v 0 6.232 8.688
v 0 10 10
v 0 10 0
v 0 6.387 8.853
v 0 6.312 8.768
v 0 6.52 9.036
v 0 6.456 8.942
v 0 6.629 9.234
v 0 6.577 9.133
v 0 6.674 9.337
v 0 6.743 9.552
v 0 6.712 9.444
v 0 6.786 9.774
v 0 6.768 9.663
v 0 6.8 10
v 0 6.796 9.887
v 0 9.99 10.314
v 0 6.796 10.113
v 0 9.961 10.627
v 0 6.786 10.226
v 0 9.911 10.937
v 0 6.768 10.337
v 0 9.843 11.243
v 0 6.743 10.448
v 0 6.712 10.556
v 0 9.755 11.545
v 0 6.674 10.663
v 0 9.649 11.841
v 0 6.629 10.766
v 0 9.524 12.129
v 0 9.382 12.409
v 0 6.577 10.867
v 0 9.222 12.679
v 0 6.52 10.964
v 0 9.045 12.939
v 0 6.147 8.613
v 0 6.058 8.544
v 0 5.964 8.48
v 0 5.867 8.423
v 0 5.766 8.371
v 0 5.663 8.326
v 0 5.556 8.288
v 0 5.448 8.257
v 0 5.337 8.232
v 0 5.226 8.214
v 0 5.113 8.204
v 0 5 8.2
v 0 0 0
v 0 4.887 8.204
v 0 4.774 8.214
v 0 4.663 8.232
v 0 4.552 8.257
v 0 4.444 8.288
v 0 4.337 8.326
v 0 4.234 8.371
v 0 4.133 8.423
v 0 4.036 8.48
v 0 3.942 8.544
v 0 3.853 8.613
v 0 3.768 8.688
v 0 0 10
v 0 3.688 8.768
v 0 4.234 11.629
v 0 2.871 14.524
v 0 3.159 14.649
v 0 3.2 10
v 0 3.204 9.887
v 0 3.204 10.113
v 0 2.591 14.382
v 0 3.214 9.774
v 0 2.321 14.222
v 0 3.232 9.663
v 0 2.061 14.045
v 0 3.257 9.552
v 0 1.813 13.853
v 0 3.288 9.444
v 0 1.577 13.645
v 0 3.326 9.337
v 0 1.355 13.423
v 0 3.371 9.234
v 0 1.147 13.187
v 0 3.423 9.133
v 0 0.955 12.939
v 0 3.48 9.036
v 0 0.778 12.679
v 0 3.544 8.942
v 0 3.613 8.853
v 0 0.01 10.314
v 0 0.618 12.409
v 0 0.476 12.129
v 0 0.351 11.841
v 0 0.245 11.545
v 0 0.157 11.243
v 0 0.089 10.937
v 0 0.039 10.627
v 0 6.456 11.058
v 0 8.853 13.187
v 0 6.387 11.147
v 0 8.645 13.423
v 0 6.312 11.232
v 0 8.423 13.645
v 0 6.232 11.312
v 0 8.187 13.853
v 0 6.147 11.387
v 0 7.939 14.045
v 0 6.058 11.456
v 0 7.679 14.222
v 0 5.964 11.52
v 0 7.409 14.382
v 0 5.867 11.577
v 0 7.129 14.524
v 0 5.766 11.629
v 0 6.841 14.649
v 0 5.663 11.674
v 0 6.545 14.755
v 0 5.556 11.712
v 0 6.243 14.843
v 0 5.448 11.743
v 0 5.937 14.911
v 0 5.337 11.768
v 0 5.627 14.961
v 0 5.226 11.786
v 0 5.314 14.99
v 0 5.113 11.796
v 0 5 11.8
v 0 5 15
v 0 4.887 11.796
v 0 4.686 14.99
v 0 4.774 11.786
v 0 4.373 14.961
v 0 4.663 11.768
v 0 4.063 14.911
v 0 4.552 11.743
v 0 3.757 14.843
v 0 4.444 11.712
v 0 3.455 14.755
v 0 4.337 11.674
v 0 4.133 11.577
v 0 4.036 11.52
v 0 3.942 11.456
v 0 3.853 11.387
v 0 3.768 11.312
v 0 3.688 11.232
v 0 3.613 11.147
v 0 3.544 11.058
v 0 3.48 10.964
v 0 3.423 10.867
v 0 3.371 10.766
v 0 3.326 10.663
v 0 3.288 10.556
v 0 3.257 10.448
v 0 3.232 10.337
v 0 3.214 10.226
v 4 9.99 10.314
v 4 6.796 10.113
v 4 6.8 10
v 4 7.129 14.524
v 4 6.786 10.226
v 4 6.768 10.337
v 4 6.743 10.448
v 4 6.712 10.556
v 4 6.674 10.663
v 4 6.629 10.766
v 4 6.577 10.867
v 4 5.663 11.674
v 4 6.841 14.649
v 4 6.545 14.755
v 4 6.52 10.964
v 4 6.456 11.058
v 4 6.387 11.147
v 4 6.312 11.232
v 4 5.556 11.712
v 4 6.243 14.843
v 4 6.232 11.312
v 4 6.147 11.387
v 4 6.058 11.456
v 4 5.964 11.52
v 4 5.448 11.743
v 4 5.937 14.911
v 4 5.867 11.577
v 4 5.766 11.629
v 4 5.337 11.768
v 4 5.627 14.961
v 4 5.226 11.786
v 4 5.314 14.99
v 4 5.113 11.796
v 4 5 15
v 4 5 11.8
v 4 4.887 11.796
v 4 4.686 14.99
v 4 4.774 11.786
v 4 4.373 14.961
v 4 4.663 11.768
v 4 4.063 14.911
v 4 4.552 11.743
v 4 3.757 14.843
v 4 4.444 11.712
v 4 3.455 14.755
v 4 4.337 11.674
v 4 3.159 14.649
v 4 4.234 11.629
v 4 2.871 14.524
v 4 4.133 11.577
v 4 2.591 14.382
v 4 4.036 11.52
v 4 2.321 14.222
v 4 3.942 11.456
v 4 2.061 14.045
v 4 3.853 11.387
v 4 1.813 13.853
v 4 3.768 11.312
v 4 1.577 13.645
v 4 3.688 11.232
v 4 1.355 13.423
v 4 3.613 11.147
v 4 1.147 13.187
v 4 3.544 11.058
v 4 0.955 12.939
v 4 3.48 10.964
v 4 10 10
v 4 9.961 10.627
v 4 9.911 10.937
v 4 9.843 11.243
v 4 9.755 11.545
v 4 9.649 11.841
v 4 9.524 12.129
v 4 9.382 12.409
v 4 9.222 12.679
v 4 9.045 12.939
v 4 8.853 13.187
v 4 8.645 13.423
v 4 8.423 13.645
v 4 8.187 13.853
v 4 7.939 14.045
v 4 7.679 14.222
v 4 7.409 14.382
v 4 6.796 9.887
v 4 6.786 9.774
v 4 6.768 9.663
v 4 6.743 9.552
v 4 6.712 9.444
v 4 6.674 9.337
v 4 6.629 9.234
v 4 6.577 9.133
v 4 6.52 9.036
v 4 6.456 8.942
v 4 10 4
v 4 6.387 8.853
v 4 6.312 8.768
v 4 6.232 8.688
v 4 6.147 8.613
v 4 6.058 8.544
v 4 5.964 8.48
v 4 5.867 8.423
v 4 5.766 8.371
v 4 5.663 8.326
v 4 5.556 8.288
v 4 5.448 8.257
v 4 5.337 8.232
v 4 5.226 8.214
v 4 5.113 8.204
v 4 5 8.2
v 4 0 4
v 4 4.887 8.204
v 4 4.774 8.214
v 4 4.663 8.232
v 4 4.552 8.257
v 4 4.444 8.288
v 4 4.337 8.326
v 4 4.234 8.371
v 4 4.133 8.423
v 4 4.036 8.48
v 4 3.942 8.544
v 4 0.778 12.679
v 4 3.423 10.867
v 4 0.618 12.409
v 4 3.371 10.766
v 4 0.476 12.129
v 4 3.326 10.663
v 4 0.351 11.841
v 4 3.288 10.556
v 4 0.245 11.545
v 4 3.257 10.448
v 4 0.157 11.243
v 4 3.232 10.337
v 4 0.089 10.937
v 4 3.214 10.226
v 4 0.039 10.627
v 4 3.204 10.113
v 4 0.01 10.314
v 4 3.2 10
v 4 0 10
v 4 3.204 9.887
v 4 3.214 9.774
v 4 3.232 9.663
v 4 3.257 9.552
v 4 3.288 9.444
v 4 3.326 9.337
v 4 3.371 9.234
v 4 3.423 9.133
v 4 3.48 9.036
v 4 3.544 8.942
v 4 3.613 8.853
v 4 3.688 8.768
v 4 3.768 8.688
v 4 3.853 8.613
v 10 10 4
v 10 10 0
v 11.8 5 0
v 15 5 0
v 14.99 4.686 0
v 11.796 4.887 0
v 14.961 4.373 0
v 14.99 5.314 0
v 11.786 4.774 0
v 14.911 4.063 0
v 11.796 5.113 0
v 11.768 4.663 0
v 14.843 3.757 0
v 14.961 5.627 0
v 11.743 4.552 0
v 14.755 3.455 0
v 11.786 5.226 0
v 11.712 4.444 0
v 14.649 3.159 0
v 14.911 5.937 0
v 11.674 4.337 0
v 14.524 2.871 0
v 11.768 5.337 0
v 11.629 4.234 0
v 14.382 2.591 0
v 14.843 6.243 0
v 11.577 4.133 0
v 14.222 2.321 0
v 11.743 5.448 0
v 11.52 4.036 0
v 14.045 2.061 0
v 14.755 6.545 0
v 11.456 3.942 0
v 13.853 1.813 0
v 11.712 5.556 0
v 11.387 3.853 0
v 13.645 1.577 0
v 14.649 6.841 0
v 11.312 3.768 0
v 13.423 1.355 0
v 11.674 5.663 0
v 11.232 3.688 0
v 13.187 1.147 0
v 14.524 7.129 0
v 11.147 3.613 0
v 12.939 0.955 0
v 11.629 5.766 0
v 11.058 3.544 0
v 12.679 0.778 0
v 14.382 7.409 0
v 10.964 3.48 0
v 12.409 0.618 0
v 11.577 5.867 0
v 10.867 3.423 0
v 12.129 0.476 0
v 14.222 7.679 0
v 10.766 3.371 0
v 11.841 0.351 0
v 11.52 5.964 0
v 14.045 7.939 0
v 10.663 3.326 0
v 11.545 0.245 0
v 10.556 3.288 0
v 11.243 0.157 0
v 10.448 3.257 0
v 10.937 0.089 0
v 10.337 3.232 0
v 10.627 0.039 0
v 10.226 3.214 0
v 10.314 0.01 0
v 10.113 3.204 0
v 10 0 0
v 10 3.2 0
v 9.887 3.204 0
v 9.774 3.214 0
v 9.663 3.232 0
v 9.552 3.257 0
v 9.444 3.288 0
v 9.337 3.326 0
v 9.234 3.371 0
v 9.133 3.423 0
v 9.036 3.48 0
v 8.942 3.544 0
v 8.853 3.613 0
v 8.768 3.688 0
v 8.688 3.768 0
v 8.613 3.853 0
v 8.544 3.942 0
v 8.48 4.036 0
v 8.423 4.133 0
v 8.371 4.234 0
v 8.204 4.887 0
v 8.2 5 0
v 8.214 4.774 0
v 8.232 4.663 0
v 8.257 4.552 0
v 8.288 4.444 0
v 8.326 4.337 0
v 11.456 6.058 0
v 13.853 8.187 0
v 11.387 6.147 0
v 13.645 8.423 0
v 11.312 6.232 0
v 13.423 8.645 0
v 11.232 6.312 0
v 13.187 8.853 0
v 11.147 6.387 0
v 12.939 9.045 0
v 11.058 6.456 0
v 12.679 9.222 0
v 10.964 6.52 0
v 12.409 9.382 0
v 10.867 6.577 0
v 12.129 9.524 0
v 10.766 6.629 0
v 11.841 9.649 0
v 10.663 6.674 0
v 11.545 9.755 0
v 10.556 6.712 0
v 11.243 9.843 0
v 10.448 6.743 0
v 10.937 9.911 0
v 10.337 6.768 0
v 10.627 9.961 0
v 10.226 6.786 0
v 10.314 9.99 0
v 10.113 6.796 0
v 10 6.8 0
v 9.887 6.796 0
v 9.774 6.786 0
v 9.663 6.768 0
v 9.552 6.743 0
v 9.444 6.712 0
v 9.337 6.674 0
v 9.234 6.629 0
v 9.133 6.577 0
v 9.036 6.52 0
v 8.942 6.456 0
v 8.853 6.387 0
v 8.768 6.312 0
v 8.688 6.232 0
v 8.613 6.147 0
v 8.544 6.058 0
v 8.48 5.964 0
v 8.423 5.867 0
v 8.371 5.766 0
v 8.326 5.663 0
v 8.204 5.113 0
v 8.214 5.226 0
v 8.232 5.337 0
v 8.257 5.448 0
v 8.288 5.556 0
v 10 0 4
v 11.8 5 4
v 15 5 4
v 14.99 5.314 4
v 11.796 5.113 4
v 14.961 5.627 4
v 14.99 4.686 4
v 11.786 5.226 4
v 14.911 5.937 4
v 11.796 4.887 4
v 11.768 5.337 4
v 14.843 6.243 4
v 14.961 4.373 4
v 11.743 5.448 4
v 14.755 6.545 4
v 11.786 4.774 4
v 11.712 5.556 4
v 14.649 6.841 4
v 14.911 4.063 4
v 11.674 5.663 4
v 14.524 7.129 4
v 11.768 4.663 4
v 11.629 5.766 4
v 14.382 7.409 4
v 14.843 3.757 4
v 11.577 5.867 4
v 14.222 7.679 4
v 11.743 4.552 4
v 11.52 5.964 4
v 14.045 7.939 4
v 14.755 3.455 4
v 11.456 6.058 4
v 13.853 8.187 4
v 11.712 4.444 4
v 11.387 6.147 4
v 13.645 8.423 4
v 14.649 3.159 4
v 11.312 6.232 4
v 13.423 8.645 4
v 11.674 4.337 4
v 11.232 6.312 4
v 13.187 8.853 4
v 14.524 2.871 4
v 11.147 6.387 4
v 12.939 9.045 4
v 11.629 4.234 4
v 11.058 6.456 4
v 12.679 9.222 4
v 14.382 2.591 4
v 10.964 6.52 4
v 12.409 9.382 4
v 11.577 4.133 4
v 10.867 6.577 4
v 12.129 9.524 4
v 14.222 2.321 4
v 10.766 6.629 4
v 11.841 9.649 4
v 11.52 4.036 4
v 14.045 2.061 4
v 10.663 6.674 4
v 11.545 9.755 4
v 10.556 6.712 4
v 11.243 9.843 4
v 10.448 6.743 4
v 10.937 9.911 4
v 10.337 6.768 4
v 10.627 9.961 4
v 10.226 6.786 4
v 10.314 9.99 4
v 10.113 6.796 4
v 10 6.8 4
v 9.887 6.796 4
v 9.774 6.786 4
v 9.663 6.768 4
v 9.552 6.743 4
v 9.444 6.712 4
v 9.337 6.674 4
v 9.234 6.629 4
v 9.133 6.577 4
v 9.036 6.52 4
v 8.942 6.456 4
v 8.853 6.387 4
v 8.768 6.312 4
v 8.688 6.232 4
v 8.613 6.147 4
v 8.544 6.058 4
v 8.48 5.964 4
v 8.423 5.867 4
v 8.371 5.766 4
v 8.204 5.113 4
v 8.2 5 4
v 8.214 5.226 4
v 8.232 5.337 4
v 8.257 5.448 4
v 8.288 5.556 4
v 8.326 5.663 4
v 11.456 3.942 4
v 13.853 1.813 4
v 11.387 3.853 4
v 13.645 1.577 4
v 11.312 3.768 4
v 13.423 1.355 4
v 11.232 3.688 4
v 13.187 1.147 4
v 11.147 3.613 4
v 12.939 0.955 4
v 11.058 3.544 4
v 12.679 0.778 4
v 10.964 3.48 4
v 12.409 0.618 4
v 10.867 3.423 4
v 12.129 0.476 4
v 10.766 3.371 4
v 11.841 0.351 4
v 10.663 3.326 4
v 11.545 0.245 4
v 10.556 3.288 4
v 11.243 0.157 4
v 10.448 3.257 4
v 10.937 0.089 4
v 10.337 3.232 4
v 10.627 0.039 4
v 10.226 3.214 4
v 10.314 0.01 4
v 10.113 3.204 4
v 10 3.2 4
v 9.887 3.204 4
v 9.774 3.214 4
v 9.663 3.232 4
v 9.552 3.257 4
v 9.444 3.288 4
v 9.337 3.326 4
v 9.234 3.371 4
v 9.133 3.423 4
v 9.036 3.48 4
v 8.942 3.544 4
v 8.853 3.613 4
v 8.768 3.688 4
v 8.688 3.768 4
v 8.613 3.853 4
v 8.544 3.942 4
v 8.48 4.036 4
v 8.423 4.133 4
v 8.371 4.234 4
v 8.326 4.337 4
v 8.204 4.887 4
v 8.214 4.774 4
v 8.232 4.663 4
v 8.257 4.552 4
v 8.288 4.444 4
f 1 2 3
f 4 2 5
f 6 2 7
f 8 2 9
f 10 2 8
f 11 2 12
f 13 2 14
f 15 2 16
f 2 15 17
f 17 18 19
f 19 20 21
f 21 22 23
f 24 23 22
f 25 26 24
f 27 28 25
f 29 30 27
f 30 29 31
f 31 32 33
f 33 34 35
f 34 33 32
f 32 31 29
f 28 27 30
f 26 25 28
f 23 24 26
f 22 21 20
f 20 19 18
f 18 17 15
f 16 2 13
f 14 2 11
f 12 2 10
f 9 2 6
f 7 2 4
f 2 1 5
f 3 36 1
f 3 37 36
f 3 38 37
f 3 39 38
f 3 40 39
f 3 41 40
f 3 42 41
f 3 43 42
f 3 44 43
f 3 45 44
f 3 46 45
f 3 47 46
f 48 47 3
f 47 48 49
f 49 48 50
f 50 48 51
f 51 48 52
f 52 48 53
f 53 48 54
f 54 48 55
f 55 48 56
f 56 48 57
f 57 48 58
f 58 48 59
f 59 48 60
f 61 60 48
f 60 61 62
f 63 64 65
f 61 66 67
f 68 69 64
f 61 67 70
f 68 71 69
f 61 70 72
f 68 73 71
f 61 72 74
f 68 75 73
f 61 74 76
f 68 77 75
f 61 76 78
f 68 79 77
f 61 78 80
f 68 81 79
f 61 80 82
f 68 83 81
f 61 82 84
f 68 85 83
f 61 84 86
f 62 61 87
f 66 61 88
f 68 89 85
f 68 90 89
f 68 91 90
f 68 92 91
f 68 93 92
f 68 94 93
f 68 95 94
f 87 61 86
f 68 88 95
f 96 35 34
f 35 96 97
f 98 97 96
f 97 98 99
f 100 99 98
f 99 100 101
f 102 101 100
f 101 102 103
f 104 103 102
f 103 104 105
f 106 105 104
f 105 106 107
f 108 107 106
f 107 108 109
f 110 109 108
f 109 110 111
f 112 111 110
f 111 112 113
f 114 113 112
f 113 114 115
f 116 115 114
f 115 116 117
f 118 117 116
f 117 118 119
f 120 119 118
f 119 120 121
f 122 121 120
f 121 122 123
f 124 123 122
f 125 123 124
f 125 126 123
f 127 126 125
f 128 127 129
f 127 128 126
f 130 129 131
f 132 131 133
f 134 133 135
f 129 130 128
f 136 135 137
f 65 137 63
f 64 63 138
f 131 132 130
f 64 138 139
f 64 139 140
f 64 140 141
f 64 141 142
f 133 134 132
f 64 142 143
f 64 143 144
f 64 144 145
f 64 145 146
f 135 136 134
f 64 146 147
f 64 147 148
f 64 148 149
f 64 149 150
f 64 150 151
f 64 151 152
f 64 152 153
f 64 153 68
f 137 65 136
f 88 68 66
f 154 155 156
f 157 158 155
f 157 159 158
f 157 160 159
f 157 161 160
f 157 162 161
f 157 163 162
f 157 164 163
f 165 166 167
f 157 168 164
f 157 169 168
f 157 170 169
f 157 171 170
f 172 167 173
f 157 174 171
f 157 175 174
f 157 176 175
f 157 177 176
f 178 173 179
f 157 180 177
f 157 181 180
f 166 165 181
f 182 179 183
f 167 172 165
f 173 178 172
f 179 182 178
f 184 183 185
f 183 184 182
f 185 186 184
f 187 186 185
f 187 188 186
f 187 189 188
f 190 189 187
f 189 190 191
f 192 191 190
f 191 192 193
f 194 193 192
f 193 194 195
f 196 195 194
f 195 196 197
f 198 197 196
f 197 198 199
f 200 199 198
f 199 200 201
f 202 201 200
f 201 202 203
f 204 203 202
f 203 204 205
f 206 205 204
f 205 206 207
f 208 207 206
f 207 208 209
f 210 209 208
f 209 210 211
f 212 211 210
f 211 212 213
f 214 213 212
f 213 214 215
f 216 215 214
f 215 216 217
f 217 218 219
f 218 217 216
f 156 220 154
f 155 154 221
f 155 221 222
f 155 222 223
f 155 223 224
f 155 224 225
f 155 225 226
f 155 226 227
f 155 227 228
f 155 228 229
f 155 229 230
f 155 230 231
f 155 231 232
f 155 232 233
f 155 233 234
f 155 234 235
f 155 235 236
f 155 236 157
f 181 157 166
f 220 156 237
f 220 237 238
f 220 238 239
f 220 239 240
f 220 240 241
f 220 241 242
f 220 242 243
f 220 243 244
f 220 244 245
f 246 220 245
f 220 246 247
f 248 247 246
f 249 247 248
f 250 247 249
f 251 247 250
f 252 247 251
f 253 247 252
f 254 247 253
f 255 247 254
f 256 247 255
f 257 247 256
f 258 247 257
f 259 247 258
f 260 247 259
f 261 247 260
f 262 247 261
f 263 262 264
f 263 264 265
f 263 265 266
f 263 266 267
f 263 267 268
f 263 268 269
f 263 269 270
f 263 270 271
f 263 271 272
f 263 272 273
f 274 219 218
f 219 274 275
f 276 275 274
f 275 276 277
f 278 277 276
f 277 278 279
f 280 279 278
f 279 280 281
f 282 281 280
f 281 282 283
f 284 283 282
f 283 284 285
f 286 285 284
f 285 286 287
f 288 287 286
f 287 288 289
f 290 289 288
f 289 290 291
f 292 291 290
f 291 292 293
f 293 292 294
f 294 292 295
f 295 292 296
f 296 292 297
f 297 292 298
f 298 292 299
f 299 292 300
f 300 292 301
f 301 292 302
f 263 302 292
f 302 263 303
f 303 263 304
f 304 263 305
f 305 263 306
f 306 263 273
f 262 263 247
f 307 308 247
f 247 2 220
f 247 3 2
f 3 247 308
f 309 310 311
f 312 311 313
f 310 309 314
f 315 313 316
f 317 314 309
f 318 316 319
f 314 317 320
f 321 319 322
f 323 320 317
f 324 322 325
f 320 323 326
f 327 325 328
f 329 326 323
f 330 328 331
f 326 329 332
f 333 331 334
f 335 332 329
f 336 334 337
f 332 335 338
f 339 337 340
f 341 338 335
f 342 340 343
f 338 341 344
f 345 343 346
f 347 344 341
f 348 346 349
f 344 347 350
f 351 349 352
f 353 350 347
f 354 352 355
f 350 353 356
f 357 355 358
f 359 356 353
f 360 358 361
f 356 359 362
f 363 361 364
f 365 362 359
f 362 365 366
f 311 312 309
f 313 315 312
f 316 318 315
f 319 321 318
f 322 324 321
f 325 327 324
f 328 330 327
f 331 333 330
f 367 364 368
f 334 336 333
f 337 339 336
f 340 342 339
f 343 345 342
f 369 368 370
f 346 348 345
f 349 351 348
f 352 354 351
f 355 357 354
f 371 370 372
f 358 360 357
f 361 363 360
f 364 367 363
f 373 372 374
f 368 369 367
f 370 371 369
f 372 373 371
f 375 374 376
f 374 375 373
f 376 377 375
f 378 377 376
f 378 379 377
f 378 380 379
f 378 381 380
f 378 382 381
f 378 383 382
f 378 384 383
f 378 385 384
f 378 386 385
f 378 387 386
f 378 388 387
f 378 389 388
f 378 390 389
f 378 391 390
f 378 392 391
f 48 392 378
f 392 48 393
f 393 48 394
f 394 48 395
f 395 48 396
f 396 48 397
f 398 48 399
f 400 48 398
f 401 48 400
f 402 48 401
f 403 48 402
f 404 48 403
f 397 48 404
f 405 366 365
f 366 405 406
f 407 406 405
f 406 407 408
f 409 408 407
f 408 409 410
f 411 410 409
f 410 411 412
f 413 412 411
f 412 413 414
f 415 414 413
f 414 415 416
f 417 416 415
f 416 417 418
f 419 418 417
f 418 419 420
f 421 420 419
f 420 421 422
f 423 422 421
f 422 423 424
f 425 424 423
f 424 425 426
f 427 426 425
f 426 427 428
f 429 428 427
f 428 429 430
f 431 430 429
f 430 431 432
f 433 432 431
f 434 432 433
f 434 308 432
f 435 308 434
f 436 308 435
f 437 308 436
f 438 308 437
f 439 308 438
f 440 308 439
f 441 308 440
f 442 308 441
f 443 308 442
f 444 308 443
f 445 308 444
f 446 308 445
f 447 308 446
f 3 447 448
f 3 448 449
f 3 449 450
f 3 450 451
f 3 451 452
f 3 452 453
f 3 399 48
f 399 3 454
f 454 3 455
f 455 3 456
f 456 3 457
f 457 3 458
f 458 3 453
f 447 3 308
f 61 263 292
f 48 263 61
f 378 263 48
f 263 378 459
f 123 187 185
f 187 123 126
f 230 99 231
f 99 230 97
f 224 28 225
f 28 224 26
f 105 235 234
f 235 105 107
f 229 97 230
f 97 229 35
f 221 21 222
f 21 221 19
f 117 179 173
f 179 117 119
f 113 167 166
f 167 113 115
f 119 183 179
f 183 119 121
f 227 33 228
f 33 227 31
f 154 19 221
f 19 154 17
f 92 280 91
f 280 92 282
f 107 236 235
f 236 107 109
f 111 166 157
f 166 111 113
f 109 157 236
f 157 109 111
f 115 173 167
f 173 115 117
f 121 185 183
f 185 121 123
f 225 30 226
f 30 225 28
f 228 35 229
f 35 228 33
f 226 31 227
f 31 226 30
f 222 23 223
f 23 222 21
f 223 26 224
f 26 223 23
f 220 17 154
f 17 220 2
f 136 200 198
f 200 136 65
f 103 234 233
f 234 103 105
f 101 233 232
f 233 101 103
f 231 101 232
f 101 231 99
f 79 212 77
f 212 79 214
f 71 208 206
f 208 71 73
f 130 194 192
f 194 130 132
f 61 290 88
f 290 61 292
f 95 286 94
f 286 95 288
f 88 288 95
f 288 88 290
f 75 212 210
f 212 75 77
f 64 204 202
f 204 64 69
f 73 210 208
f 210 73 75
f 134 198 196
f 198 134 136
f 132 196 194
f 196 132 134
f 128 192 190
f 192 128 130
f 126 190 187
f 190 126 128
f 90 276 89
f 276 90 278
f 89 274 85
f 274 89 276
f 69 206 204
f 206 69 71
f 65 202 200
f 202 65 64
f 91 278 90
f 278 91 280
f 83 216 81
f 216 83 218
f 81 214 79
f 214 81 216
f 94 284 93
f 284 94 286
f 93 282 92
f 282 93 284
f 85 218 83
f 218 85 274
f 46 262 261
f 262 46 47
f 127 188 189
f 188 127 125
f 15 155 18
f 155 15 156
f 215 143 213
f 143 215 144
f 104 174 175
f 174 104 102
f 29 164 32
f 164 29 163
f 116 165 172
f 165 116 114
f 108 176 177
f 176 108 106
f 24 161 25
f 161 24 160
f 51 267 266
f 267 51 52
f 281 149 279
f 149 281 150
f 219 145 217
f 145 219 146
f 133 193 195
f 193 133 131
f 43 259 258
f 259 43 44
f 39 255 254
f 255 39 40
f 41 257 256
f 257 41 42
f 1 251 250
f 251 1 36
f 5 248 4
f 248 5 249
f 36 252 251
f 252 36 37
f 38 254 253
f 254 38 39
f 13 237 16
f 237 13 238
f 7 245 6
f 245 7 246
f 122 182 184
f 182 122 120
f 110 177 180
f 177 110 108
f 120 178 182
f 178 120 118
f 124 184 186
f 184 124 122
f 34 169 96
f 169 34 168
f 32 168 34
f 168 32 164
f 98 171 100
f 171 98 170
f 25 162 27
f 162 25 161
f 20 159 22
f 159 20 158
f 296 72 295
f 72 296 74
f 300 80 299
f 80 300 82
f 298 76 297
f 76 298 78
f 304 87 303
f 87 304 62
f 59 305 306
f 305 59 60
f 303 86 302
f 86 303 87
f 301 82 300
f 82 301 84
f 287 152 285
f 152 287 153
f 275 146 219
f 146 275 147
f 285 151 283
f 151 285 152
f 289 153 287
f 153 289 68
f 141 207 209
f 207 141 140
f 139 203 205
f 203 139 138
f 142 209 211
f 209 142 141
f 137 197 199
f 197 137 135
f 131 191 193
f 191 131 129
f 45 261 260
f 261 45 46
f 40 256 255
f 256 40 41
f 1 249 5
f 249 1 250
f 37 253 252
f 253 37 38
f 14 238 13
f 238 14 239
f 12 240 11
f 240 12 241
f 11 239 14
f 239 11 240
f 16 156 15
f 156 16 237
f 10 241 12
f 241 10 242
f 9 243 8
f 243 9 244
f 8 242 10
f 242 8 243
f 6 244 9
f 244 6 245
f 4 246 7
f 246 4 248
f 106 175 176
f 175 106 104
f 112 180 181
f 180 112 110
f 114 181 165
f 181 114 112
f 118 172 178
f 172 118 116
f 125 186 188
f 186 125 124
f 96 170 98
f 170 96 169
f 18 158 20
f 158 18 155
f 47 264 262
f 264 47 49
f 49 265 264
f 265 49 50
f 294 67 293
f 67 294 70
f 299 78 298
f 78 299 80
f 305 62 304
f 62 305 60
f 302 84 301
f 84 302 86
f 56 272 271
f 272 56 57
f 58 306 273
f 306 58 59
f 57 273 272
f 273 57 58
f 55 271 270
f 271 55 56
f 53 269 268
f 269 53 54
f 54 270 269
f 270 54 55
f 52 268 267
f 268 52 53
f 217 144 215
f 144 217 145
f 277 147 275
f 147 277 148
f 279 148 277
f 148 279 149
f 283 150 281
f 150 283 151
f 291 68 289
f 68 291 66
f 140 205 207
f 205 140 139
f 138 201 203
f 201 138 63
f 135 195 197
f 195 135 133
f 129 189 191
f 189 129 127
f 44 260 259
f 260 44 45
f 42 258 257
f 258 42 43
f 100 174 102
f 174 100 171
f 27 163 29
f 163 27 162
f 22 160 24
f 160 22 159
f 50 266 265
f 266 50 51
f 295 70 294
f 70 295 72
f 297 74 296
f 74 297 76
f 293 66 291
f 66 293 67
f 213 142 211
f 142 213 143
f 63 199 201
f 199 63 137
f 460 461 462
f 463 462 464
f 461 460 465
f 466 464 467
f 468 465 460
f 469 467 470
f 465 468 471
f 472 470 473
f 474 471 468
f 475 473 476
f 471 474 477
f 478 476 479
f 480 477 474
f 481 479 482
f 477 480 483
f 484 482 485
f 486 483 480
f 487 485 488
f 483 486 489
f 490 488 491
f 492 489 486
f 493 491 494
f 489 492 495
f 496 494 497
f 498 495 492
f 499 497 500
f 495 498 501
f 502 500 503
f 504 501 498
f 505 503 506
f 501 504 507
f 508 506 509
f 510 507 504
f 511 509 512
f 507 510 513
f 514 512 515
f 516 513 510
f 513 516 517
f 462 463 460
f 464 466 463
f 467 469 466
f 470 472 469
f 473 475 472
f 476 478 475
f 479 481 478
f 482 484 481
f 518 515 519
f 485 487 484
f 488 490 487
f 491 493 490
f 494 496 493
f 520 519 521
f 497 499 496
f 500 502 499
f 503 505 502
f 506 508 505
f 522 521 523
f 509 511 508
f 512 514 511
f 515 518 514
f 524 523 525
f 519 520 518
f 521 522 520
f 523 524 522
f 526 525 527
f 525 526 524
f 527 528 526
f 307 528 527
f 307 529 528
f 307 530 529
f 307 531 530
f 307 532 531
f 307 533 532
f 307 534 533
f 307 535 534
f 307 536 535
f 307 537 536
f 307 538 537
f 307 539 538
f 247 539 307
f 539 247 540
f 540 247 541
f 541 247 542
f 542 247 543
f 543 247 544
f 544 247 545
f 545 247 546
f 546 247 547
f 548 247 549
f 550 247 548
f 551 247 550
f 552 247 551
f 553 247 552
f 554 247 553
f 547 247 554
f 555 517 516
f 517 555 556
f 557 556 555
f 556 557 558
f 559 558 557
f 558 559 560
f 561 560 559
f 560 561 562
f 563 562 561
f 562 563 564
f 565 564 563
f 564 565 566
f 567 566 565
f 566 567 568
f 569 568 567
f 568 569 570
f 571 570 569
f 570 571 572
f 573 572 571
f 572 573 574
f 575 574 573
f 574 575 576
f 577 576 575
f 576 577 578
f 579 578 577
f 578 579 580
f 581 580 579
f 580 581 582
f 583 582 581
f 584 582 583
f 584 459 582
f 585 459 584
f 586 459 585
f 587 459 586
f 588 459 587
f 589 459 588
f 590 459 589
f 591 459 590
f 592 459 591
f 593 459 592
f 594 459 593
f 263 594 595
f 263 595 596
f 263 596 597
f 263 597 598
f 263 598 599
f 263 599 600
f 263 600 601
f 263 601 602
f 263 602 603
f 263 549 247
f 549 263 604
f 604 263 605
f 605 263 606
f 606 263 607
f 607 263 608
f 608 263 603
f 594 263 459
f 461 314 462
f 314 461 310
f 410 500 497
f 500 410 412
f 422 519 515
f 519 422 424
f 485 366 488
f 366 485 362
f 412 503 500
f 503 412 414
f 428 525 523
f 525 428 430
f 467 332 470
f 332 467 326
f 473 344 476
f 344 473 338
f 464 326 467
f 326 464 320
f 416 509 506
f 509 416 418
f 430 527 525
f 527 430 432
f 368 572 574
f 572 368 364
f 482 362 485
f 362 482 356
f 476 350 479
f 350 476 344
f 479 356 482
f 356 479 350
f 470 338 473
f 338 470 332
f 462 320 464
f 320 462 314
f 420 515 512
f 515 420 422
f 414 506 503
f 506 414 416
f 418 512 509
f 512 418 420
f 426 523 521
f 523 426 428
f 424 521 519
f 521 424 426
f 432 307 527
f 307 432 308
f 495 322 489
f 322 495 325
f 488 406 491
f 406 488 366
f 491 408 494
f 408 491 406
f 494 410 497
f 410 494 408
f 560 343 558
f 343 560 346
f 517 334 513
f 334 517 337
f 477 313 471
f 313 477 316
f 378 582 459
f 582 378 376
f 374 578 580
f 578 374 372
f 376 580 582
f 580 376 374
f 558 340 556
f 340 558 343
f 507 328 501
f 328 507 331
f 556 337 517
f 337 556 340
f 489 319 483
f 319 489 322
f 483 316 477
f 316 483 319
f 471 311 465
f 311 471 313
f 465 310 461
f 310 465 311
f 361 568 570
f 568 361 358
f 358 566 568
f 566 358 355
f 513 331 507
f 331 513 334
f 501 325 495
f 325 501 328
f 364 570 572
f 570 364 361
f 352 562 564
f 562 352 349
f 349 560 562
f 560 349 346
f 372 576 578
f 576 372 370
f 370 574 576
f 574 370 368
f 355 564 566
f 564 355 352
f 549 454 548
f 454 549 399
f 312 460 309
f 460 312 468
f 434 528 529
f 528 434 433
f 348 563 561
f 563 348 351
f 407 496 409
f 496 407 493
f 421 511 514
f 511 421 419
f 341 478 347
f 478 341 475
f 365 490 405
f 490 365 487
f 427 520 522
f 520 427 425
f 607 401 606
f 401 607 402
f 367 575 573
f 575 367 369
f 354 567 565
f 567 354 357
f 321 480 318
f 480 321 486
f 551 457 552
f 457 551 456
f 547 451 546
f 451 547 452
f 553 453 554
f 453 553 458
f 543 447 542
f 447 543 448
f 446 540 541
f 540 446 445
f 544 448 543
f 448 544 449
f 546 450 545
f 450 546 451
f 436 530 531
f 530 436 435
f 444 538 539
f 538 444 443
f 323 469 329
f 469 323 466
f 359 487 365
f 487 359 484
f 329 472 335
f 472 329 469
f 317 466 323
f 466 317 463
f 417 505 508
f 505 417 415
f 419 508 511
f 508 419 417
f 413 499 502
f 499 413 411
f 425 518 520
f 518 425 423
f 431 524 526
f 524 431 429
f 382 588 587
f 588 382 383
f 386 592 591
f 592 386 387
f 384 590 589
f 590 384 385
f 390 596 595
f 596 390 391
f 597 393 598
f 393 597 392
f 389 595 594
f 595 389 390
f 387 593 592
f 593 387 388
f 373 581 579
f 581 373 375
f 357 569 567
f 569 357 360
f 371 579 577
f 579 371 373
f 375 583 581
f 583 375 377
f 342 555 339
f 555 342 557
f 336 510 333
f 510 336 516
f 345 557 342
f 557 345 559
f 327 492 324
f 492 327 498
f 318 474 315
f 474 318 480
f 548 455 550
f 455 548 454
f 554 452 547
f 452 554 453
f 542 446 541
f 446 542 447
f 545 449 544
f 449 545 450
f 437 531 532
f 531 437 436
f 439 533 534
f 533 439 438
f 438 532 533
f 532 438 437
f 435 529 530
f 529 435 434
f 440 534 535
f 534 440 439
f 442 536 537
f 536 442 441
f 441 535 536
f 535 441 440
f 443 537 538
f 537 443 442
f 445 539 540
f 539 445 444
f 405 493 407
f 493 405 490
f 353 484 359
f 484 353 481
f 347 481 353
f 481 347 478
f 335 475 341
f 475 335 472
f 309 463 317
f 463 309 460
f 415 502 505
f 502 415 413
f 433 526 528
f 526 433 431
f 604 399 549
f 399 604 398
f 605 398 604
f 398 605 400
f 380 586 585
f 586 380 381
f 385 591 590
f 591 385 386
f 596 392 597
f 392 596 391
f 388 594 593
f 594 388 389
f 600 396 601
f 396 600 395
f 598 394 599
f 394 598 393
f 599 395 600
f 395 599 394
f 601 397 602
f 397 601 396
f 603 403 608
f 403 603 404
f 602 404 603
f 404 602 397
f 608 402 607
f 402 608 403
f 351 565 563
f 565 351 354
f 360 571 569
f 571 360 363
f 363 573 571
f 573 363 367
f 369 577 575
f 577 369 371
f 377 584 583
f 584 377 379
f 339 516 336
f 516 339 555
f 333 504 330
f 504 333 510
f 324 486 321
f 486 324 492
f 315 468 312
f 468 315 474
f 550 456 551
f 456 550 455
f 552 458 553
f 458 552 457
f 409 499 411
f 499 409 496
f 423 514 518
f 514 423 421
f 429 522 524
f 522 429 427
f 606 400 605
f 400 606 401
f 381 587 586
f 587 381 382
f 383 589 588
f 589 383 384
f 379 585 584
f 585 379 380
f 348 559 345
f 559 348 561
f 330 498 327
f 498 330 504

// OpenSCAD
$fn=100;

H=10;
W=H*1.5;
e=4;

module cote()
{
    difference()
    {
    union()
    {
    cube([e,H,H]);
    translate([0,H/2,H]) rotate([0,90,0]) cylinder(d=H,h=e);
    };
    
     translate([-1,H/2,H]) rotate([0,90,0]) cylinder(d=3.6,h=e+2);
    
}
}

cote();
translate([0,0,e])  rotate([0,90,0]) cote();
